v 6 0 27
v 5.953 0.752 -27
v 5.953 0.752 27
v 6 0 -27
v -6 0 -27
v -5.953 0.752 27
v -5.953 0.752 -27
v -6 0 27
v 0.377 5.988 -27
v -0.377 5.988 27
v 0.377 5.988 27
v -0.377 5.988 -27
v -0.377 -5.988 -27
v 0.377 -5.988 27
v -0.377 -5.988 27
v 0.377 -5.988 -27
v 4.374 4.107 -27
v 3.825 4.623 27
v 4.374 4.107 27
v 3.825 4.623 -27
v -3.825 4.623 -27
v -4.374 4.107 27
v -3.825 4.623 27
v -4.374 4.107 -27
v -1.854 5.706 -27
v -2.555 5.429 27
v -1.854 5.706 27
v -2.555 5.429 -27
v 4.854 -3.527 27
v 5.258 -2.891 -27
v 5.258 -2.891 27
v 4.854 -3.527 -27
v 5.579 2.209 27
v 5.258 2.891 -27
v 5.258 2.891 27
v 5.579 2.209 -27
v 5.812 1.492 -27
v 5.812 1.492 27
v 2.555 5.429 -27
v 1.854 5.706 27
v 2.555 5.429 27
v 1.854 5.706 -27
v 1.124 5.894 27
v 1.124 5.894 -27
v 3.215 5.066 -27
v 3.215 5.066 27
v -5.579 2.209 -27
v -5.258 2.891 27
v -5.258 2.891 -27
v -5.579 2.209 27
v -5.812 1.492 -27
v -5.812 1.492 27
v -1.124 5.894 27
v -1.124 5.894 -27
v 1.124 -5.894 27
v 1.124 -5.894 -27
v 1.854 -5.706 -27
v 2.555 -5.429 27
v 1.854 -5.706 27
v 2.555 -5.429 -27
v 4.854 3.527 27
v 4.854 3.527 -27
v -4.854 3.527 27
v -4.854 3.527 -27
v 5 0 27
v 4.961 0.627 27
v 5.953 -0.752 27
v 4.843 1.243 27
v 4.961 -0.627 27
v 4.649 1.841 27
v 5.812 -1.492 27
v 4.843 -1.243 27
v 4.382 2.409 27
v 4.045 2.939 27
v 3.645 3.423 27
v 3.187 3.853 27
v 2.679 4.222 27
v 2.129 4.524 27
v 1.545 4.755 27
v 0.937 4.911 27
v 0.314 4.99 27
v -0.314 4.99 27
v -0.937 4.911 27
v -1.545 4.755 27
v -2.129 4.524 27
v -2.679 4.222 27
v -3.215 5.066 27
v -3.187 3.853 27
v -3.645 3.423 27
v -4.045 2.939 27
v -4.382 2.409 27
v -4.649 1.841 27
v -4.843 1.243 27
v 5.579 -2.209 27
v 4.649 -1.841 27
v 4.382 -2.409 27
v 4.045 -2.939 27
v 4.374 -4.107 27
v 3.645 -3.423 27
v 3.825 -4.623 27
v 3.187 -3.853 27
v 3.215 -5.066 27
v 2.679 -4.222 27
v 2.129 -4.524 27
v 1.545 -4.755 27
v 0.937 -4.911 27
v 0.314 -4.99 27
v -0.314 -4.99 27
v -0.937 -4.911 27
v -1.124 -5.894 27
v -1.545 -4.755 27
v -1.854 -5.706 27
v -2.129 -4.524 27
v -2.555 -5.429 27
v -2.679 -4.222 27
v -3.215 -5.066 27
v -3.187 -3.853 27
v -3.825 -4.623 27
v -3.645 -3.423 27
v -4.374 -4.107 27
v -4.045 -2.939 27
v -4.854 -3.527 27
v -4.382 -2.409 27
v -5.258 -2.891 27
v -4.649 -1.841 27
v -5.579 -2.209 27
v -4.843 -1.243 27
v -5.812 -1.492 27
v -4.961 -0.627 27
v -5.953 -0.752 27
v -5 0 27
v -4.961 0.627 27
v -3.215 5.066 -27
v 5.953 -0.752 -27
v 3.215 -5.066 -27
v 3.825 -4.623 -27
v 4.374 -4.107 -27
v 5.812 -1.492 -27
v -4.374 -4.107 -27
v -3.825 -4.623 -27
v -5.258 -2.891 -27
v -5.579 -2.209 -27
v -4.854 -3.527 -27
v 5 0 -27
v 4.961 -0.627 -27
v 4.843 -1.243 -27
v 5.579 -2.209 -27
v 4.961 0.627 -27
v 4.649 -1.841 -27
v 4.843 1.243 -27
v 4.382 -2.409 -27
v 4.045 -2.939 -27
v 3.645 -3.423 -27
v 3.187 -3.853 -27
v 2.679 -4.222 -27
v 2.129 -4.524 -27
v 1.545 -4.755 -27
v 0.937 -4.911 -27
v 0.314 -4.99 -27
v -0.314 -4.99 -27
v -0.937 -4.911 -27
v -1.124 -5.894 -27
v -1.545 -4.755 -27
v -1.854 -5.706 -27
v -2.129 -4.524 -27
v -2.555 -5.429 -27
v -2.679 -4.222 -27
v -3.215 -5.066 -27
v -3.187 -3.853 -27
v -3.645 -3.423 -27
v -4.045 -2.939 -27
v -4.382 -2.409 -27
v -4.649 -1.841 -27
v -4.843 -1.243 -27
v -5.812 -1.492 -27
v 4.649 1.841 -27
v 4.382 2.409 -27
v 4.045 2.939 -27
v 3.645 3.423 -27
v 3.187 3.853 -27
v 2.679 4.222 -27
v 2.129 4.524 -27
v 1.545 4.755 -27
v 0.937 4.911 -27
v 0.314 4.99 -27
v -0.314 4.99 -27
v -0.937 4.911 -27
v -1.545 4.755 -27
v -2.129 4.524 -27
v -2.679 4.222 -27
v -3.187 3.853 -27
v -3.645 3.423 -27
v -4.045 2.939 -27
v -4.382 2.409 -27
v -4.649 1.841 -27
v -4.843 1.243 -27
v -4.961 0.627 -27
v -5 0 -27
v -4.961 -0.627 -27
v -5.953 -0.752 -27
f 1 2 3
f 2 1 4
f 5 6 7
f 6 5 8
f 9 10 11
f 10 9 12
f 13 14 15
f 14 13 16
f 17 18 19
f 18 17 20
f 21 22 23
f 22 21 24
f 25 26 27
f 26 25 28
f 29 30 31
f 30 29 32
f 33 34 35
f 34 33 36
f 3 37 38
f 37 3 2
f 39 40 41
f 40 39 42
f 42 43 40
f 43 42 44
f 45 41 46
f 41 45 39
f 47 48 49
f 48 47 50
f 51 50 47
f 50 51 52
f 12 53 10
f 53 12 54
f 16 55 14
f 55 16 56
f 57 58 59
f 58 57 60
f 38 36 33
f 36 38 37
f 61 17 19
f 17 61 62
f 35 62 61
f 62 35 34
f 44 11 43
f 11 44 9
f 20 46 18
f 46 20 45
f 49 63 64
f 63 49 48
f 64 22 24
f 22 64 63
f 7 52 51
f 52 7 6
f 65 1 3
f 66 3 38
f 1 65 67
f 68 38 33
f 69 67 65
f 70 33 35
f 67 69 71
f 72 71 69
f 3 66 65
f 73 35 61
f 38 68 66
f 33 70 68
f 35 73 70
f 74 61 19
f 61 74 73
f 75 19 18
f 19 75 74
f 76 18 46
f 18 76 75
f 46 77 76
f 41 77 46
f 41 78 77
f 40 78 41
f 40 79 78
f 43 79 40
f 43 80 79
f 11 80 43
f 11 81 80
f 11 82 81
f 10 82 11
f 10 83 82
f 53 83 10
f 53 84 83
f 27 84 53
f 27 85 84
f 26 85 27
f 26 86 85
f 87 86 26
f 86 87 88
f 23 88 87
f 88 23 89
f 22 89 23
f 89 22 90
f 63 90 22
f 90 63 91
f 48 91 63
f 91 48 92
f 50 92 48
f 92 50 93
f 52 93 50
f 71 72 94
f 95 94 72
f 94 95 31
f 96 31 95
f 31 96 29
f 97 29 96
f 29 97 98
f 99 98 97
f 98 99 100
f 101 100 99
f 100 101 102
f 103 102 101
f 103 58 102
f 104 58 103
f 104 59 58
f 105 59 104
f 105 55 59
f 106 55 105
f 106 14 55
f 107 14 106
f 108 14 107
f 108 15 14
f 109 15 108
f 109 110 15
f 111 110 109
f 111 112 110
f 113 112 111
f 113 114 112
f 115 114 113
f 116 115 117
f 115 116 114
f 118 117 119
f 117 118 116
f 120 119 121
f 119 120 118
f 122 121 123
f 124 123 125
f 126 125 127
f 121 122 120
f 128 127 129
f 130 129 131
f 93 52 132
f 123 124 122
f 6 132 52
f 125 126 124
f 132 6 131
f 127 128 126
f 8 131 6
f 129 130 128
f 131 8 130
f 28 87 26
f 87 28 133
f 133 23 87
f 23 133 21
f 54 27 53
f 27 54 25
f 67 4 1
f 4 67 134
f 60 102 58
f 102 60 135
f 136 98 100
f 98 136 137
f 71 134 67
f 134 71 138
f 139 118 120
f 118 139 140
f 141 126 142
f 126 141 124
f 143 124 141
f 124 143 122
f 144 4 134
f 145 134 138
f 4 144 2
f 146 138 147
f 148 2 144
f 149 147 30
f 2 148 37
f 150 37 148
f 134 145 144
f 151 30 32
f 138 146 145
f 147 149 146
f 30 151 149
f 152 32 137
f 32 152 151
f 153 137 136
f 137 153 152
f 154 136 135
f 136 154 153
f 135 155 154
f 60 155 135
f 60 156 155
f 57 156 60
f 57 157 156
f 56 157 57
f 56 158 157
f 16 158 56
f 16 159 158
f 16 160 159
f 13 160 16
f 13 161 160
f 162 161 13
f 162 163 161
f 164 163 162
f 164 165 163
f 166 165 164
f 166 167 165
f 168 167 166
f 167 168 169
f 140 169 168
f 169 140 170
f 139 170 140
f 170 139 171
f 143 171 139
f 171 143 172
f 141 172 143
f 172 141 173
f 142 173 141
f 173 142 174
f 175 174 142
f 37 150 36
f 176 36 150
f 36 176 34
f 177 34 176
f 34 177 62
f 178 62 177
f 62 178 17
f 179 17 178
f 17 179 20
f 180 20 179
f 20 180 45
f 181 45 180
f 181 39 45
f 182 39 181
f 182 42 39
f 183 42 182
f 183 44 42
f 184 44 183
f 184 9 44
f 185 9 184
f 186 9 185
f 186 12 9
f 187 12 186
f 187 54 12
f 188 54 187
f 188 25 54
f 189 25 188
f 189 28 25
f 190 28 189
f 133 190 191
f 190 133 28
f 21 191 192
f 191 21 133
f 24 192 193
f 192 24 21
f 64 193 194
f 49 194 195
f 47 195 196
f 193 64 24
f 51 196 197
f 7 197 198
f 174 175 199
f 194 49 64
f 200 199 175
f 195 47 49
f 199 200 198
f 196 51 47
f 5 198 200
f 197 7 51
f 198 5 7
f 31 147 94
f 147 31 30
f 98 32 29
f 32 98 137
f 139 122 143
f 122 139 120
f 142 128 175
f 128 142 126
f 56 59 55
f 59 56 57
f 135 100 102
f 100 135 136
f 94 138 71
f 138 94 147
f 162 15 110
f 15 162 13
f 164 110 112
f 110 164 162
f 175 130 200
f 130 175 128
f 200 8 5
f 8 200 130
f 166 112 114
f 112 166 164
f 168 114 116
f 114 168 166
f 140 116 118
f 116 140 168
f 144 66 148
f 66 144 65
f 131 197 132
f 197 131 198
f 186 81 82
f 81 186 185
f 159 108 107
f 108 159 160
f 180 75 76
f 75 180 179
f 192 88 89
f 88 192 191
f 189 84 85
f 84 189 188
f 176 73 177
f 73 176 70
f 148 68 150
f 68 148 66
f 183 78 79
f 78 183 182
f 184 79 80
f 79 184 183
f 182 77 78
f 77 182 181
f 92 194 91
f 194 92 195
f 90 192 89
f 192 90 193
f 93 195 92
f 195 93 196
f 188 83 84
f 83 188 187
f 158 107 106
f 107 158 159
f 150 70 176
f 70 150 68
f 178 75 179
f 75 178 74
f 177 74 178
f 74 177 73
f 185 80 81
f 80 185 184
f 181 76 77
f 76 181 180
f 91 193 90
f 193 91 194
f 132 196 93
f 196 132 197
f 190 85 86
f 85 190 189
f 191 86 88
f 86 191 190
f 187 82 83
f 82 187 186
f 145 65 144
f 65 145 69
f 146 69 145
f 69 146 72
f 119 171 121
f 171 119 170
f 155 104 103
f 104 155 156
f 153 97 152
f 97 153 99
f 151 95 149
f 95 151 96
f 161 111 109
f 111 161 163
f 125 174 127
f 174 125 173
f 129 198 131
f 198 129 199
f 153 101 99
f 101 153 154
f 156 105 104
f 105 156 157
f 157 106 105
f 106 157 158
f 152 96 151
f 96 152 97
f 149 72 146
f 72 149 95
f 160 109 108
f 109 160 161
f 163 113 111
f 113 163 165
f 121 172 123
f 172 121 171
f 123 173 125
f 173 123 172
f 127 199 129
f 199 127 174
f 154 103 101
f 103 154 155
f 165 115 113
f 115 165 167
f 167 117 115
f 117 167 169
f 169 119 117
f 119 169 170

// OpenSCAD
$fn = 50;


difference() {
	union() {
		translate(v = [0, 0, -27.0000000000]) {
			cylinder(h = 54, r = 6.0000000000);
		}
	}
	union() {
		translate(v = [0, 0, -100.0000000000]) {
			cylinder(h = 200, r = 5.0000000000);
		}
	}
}
